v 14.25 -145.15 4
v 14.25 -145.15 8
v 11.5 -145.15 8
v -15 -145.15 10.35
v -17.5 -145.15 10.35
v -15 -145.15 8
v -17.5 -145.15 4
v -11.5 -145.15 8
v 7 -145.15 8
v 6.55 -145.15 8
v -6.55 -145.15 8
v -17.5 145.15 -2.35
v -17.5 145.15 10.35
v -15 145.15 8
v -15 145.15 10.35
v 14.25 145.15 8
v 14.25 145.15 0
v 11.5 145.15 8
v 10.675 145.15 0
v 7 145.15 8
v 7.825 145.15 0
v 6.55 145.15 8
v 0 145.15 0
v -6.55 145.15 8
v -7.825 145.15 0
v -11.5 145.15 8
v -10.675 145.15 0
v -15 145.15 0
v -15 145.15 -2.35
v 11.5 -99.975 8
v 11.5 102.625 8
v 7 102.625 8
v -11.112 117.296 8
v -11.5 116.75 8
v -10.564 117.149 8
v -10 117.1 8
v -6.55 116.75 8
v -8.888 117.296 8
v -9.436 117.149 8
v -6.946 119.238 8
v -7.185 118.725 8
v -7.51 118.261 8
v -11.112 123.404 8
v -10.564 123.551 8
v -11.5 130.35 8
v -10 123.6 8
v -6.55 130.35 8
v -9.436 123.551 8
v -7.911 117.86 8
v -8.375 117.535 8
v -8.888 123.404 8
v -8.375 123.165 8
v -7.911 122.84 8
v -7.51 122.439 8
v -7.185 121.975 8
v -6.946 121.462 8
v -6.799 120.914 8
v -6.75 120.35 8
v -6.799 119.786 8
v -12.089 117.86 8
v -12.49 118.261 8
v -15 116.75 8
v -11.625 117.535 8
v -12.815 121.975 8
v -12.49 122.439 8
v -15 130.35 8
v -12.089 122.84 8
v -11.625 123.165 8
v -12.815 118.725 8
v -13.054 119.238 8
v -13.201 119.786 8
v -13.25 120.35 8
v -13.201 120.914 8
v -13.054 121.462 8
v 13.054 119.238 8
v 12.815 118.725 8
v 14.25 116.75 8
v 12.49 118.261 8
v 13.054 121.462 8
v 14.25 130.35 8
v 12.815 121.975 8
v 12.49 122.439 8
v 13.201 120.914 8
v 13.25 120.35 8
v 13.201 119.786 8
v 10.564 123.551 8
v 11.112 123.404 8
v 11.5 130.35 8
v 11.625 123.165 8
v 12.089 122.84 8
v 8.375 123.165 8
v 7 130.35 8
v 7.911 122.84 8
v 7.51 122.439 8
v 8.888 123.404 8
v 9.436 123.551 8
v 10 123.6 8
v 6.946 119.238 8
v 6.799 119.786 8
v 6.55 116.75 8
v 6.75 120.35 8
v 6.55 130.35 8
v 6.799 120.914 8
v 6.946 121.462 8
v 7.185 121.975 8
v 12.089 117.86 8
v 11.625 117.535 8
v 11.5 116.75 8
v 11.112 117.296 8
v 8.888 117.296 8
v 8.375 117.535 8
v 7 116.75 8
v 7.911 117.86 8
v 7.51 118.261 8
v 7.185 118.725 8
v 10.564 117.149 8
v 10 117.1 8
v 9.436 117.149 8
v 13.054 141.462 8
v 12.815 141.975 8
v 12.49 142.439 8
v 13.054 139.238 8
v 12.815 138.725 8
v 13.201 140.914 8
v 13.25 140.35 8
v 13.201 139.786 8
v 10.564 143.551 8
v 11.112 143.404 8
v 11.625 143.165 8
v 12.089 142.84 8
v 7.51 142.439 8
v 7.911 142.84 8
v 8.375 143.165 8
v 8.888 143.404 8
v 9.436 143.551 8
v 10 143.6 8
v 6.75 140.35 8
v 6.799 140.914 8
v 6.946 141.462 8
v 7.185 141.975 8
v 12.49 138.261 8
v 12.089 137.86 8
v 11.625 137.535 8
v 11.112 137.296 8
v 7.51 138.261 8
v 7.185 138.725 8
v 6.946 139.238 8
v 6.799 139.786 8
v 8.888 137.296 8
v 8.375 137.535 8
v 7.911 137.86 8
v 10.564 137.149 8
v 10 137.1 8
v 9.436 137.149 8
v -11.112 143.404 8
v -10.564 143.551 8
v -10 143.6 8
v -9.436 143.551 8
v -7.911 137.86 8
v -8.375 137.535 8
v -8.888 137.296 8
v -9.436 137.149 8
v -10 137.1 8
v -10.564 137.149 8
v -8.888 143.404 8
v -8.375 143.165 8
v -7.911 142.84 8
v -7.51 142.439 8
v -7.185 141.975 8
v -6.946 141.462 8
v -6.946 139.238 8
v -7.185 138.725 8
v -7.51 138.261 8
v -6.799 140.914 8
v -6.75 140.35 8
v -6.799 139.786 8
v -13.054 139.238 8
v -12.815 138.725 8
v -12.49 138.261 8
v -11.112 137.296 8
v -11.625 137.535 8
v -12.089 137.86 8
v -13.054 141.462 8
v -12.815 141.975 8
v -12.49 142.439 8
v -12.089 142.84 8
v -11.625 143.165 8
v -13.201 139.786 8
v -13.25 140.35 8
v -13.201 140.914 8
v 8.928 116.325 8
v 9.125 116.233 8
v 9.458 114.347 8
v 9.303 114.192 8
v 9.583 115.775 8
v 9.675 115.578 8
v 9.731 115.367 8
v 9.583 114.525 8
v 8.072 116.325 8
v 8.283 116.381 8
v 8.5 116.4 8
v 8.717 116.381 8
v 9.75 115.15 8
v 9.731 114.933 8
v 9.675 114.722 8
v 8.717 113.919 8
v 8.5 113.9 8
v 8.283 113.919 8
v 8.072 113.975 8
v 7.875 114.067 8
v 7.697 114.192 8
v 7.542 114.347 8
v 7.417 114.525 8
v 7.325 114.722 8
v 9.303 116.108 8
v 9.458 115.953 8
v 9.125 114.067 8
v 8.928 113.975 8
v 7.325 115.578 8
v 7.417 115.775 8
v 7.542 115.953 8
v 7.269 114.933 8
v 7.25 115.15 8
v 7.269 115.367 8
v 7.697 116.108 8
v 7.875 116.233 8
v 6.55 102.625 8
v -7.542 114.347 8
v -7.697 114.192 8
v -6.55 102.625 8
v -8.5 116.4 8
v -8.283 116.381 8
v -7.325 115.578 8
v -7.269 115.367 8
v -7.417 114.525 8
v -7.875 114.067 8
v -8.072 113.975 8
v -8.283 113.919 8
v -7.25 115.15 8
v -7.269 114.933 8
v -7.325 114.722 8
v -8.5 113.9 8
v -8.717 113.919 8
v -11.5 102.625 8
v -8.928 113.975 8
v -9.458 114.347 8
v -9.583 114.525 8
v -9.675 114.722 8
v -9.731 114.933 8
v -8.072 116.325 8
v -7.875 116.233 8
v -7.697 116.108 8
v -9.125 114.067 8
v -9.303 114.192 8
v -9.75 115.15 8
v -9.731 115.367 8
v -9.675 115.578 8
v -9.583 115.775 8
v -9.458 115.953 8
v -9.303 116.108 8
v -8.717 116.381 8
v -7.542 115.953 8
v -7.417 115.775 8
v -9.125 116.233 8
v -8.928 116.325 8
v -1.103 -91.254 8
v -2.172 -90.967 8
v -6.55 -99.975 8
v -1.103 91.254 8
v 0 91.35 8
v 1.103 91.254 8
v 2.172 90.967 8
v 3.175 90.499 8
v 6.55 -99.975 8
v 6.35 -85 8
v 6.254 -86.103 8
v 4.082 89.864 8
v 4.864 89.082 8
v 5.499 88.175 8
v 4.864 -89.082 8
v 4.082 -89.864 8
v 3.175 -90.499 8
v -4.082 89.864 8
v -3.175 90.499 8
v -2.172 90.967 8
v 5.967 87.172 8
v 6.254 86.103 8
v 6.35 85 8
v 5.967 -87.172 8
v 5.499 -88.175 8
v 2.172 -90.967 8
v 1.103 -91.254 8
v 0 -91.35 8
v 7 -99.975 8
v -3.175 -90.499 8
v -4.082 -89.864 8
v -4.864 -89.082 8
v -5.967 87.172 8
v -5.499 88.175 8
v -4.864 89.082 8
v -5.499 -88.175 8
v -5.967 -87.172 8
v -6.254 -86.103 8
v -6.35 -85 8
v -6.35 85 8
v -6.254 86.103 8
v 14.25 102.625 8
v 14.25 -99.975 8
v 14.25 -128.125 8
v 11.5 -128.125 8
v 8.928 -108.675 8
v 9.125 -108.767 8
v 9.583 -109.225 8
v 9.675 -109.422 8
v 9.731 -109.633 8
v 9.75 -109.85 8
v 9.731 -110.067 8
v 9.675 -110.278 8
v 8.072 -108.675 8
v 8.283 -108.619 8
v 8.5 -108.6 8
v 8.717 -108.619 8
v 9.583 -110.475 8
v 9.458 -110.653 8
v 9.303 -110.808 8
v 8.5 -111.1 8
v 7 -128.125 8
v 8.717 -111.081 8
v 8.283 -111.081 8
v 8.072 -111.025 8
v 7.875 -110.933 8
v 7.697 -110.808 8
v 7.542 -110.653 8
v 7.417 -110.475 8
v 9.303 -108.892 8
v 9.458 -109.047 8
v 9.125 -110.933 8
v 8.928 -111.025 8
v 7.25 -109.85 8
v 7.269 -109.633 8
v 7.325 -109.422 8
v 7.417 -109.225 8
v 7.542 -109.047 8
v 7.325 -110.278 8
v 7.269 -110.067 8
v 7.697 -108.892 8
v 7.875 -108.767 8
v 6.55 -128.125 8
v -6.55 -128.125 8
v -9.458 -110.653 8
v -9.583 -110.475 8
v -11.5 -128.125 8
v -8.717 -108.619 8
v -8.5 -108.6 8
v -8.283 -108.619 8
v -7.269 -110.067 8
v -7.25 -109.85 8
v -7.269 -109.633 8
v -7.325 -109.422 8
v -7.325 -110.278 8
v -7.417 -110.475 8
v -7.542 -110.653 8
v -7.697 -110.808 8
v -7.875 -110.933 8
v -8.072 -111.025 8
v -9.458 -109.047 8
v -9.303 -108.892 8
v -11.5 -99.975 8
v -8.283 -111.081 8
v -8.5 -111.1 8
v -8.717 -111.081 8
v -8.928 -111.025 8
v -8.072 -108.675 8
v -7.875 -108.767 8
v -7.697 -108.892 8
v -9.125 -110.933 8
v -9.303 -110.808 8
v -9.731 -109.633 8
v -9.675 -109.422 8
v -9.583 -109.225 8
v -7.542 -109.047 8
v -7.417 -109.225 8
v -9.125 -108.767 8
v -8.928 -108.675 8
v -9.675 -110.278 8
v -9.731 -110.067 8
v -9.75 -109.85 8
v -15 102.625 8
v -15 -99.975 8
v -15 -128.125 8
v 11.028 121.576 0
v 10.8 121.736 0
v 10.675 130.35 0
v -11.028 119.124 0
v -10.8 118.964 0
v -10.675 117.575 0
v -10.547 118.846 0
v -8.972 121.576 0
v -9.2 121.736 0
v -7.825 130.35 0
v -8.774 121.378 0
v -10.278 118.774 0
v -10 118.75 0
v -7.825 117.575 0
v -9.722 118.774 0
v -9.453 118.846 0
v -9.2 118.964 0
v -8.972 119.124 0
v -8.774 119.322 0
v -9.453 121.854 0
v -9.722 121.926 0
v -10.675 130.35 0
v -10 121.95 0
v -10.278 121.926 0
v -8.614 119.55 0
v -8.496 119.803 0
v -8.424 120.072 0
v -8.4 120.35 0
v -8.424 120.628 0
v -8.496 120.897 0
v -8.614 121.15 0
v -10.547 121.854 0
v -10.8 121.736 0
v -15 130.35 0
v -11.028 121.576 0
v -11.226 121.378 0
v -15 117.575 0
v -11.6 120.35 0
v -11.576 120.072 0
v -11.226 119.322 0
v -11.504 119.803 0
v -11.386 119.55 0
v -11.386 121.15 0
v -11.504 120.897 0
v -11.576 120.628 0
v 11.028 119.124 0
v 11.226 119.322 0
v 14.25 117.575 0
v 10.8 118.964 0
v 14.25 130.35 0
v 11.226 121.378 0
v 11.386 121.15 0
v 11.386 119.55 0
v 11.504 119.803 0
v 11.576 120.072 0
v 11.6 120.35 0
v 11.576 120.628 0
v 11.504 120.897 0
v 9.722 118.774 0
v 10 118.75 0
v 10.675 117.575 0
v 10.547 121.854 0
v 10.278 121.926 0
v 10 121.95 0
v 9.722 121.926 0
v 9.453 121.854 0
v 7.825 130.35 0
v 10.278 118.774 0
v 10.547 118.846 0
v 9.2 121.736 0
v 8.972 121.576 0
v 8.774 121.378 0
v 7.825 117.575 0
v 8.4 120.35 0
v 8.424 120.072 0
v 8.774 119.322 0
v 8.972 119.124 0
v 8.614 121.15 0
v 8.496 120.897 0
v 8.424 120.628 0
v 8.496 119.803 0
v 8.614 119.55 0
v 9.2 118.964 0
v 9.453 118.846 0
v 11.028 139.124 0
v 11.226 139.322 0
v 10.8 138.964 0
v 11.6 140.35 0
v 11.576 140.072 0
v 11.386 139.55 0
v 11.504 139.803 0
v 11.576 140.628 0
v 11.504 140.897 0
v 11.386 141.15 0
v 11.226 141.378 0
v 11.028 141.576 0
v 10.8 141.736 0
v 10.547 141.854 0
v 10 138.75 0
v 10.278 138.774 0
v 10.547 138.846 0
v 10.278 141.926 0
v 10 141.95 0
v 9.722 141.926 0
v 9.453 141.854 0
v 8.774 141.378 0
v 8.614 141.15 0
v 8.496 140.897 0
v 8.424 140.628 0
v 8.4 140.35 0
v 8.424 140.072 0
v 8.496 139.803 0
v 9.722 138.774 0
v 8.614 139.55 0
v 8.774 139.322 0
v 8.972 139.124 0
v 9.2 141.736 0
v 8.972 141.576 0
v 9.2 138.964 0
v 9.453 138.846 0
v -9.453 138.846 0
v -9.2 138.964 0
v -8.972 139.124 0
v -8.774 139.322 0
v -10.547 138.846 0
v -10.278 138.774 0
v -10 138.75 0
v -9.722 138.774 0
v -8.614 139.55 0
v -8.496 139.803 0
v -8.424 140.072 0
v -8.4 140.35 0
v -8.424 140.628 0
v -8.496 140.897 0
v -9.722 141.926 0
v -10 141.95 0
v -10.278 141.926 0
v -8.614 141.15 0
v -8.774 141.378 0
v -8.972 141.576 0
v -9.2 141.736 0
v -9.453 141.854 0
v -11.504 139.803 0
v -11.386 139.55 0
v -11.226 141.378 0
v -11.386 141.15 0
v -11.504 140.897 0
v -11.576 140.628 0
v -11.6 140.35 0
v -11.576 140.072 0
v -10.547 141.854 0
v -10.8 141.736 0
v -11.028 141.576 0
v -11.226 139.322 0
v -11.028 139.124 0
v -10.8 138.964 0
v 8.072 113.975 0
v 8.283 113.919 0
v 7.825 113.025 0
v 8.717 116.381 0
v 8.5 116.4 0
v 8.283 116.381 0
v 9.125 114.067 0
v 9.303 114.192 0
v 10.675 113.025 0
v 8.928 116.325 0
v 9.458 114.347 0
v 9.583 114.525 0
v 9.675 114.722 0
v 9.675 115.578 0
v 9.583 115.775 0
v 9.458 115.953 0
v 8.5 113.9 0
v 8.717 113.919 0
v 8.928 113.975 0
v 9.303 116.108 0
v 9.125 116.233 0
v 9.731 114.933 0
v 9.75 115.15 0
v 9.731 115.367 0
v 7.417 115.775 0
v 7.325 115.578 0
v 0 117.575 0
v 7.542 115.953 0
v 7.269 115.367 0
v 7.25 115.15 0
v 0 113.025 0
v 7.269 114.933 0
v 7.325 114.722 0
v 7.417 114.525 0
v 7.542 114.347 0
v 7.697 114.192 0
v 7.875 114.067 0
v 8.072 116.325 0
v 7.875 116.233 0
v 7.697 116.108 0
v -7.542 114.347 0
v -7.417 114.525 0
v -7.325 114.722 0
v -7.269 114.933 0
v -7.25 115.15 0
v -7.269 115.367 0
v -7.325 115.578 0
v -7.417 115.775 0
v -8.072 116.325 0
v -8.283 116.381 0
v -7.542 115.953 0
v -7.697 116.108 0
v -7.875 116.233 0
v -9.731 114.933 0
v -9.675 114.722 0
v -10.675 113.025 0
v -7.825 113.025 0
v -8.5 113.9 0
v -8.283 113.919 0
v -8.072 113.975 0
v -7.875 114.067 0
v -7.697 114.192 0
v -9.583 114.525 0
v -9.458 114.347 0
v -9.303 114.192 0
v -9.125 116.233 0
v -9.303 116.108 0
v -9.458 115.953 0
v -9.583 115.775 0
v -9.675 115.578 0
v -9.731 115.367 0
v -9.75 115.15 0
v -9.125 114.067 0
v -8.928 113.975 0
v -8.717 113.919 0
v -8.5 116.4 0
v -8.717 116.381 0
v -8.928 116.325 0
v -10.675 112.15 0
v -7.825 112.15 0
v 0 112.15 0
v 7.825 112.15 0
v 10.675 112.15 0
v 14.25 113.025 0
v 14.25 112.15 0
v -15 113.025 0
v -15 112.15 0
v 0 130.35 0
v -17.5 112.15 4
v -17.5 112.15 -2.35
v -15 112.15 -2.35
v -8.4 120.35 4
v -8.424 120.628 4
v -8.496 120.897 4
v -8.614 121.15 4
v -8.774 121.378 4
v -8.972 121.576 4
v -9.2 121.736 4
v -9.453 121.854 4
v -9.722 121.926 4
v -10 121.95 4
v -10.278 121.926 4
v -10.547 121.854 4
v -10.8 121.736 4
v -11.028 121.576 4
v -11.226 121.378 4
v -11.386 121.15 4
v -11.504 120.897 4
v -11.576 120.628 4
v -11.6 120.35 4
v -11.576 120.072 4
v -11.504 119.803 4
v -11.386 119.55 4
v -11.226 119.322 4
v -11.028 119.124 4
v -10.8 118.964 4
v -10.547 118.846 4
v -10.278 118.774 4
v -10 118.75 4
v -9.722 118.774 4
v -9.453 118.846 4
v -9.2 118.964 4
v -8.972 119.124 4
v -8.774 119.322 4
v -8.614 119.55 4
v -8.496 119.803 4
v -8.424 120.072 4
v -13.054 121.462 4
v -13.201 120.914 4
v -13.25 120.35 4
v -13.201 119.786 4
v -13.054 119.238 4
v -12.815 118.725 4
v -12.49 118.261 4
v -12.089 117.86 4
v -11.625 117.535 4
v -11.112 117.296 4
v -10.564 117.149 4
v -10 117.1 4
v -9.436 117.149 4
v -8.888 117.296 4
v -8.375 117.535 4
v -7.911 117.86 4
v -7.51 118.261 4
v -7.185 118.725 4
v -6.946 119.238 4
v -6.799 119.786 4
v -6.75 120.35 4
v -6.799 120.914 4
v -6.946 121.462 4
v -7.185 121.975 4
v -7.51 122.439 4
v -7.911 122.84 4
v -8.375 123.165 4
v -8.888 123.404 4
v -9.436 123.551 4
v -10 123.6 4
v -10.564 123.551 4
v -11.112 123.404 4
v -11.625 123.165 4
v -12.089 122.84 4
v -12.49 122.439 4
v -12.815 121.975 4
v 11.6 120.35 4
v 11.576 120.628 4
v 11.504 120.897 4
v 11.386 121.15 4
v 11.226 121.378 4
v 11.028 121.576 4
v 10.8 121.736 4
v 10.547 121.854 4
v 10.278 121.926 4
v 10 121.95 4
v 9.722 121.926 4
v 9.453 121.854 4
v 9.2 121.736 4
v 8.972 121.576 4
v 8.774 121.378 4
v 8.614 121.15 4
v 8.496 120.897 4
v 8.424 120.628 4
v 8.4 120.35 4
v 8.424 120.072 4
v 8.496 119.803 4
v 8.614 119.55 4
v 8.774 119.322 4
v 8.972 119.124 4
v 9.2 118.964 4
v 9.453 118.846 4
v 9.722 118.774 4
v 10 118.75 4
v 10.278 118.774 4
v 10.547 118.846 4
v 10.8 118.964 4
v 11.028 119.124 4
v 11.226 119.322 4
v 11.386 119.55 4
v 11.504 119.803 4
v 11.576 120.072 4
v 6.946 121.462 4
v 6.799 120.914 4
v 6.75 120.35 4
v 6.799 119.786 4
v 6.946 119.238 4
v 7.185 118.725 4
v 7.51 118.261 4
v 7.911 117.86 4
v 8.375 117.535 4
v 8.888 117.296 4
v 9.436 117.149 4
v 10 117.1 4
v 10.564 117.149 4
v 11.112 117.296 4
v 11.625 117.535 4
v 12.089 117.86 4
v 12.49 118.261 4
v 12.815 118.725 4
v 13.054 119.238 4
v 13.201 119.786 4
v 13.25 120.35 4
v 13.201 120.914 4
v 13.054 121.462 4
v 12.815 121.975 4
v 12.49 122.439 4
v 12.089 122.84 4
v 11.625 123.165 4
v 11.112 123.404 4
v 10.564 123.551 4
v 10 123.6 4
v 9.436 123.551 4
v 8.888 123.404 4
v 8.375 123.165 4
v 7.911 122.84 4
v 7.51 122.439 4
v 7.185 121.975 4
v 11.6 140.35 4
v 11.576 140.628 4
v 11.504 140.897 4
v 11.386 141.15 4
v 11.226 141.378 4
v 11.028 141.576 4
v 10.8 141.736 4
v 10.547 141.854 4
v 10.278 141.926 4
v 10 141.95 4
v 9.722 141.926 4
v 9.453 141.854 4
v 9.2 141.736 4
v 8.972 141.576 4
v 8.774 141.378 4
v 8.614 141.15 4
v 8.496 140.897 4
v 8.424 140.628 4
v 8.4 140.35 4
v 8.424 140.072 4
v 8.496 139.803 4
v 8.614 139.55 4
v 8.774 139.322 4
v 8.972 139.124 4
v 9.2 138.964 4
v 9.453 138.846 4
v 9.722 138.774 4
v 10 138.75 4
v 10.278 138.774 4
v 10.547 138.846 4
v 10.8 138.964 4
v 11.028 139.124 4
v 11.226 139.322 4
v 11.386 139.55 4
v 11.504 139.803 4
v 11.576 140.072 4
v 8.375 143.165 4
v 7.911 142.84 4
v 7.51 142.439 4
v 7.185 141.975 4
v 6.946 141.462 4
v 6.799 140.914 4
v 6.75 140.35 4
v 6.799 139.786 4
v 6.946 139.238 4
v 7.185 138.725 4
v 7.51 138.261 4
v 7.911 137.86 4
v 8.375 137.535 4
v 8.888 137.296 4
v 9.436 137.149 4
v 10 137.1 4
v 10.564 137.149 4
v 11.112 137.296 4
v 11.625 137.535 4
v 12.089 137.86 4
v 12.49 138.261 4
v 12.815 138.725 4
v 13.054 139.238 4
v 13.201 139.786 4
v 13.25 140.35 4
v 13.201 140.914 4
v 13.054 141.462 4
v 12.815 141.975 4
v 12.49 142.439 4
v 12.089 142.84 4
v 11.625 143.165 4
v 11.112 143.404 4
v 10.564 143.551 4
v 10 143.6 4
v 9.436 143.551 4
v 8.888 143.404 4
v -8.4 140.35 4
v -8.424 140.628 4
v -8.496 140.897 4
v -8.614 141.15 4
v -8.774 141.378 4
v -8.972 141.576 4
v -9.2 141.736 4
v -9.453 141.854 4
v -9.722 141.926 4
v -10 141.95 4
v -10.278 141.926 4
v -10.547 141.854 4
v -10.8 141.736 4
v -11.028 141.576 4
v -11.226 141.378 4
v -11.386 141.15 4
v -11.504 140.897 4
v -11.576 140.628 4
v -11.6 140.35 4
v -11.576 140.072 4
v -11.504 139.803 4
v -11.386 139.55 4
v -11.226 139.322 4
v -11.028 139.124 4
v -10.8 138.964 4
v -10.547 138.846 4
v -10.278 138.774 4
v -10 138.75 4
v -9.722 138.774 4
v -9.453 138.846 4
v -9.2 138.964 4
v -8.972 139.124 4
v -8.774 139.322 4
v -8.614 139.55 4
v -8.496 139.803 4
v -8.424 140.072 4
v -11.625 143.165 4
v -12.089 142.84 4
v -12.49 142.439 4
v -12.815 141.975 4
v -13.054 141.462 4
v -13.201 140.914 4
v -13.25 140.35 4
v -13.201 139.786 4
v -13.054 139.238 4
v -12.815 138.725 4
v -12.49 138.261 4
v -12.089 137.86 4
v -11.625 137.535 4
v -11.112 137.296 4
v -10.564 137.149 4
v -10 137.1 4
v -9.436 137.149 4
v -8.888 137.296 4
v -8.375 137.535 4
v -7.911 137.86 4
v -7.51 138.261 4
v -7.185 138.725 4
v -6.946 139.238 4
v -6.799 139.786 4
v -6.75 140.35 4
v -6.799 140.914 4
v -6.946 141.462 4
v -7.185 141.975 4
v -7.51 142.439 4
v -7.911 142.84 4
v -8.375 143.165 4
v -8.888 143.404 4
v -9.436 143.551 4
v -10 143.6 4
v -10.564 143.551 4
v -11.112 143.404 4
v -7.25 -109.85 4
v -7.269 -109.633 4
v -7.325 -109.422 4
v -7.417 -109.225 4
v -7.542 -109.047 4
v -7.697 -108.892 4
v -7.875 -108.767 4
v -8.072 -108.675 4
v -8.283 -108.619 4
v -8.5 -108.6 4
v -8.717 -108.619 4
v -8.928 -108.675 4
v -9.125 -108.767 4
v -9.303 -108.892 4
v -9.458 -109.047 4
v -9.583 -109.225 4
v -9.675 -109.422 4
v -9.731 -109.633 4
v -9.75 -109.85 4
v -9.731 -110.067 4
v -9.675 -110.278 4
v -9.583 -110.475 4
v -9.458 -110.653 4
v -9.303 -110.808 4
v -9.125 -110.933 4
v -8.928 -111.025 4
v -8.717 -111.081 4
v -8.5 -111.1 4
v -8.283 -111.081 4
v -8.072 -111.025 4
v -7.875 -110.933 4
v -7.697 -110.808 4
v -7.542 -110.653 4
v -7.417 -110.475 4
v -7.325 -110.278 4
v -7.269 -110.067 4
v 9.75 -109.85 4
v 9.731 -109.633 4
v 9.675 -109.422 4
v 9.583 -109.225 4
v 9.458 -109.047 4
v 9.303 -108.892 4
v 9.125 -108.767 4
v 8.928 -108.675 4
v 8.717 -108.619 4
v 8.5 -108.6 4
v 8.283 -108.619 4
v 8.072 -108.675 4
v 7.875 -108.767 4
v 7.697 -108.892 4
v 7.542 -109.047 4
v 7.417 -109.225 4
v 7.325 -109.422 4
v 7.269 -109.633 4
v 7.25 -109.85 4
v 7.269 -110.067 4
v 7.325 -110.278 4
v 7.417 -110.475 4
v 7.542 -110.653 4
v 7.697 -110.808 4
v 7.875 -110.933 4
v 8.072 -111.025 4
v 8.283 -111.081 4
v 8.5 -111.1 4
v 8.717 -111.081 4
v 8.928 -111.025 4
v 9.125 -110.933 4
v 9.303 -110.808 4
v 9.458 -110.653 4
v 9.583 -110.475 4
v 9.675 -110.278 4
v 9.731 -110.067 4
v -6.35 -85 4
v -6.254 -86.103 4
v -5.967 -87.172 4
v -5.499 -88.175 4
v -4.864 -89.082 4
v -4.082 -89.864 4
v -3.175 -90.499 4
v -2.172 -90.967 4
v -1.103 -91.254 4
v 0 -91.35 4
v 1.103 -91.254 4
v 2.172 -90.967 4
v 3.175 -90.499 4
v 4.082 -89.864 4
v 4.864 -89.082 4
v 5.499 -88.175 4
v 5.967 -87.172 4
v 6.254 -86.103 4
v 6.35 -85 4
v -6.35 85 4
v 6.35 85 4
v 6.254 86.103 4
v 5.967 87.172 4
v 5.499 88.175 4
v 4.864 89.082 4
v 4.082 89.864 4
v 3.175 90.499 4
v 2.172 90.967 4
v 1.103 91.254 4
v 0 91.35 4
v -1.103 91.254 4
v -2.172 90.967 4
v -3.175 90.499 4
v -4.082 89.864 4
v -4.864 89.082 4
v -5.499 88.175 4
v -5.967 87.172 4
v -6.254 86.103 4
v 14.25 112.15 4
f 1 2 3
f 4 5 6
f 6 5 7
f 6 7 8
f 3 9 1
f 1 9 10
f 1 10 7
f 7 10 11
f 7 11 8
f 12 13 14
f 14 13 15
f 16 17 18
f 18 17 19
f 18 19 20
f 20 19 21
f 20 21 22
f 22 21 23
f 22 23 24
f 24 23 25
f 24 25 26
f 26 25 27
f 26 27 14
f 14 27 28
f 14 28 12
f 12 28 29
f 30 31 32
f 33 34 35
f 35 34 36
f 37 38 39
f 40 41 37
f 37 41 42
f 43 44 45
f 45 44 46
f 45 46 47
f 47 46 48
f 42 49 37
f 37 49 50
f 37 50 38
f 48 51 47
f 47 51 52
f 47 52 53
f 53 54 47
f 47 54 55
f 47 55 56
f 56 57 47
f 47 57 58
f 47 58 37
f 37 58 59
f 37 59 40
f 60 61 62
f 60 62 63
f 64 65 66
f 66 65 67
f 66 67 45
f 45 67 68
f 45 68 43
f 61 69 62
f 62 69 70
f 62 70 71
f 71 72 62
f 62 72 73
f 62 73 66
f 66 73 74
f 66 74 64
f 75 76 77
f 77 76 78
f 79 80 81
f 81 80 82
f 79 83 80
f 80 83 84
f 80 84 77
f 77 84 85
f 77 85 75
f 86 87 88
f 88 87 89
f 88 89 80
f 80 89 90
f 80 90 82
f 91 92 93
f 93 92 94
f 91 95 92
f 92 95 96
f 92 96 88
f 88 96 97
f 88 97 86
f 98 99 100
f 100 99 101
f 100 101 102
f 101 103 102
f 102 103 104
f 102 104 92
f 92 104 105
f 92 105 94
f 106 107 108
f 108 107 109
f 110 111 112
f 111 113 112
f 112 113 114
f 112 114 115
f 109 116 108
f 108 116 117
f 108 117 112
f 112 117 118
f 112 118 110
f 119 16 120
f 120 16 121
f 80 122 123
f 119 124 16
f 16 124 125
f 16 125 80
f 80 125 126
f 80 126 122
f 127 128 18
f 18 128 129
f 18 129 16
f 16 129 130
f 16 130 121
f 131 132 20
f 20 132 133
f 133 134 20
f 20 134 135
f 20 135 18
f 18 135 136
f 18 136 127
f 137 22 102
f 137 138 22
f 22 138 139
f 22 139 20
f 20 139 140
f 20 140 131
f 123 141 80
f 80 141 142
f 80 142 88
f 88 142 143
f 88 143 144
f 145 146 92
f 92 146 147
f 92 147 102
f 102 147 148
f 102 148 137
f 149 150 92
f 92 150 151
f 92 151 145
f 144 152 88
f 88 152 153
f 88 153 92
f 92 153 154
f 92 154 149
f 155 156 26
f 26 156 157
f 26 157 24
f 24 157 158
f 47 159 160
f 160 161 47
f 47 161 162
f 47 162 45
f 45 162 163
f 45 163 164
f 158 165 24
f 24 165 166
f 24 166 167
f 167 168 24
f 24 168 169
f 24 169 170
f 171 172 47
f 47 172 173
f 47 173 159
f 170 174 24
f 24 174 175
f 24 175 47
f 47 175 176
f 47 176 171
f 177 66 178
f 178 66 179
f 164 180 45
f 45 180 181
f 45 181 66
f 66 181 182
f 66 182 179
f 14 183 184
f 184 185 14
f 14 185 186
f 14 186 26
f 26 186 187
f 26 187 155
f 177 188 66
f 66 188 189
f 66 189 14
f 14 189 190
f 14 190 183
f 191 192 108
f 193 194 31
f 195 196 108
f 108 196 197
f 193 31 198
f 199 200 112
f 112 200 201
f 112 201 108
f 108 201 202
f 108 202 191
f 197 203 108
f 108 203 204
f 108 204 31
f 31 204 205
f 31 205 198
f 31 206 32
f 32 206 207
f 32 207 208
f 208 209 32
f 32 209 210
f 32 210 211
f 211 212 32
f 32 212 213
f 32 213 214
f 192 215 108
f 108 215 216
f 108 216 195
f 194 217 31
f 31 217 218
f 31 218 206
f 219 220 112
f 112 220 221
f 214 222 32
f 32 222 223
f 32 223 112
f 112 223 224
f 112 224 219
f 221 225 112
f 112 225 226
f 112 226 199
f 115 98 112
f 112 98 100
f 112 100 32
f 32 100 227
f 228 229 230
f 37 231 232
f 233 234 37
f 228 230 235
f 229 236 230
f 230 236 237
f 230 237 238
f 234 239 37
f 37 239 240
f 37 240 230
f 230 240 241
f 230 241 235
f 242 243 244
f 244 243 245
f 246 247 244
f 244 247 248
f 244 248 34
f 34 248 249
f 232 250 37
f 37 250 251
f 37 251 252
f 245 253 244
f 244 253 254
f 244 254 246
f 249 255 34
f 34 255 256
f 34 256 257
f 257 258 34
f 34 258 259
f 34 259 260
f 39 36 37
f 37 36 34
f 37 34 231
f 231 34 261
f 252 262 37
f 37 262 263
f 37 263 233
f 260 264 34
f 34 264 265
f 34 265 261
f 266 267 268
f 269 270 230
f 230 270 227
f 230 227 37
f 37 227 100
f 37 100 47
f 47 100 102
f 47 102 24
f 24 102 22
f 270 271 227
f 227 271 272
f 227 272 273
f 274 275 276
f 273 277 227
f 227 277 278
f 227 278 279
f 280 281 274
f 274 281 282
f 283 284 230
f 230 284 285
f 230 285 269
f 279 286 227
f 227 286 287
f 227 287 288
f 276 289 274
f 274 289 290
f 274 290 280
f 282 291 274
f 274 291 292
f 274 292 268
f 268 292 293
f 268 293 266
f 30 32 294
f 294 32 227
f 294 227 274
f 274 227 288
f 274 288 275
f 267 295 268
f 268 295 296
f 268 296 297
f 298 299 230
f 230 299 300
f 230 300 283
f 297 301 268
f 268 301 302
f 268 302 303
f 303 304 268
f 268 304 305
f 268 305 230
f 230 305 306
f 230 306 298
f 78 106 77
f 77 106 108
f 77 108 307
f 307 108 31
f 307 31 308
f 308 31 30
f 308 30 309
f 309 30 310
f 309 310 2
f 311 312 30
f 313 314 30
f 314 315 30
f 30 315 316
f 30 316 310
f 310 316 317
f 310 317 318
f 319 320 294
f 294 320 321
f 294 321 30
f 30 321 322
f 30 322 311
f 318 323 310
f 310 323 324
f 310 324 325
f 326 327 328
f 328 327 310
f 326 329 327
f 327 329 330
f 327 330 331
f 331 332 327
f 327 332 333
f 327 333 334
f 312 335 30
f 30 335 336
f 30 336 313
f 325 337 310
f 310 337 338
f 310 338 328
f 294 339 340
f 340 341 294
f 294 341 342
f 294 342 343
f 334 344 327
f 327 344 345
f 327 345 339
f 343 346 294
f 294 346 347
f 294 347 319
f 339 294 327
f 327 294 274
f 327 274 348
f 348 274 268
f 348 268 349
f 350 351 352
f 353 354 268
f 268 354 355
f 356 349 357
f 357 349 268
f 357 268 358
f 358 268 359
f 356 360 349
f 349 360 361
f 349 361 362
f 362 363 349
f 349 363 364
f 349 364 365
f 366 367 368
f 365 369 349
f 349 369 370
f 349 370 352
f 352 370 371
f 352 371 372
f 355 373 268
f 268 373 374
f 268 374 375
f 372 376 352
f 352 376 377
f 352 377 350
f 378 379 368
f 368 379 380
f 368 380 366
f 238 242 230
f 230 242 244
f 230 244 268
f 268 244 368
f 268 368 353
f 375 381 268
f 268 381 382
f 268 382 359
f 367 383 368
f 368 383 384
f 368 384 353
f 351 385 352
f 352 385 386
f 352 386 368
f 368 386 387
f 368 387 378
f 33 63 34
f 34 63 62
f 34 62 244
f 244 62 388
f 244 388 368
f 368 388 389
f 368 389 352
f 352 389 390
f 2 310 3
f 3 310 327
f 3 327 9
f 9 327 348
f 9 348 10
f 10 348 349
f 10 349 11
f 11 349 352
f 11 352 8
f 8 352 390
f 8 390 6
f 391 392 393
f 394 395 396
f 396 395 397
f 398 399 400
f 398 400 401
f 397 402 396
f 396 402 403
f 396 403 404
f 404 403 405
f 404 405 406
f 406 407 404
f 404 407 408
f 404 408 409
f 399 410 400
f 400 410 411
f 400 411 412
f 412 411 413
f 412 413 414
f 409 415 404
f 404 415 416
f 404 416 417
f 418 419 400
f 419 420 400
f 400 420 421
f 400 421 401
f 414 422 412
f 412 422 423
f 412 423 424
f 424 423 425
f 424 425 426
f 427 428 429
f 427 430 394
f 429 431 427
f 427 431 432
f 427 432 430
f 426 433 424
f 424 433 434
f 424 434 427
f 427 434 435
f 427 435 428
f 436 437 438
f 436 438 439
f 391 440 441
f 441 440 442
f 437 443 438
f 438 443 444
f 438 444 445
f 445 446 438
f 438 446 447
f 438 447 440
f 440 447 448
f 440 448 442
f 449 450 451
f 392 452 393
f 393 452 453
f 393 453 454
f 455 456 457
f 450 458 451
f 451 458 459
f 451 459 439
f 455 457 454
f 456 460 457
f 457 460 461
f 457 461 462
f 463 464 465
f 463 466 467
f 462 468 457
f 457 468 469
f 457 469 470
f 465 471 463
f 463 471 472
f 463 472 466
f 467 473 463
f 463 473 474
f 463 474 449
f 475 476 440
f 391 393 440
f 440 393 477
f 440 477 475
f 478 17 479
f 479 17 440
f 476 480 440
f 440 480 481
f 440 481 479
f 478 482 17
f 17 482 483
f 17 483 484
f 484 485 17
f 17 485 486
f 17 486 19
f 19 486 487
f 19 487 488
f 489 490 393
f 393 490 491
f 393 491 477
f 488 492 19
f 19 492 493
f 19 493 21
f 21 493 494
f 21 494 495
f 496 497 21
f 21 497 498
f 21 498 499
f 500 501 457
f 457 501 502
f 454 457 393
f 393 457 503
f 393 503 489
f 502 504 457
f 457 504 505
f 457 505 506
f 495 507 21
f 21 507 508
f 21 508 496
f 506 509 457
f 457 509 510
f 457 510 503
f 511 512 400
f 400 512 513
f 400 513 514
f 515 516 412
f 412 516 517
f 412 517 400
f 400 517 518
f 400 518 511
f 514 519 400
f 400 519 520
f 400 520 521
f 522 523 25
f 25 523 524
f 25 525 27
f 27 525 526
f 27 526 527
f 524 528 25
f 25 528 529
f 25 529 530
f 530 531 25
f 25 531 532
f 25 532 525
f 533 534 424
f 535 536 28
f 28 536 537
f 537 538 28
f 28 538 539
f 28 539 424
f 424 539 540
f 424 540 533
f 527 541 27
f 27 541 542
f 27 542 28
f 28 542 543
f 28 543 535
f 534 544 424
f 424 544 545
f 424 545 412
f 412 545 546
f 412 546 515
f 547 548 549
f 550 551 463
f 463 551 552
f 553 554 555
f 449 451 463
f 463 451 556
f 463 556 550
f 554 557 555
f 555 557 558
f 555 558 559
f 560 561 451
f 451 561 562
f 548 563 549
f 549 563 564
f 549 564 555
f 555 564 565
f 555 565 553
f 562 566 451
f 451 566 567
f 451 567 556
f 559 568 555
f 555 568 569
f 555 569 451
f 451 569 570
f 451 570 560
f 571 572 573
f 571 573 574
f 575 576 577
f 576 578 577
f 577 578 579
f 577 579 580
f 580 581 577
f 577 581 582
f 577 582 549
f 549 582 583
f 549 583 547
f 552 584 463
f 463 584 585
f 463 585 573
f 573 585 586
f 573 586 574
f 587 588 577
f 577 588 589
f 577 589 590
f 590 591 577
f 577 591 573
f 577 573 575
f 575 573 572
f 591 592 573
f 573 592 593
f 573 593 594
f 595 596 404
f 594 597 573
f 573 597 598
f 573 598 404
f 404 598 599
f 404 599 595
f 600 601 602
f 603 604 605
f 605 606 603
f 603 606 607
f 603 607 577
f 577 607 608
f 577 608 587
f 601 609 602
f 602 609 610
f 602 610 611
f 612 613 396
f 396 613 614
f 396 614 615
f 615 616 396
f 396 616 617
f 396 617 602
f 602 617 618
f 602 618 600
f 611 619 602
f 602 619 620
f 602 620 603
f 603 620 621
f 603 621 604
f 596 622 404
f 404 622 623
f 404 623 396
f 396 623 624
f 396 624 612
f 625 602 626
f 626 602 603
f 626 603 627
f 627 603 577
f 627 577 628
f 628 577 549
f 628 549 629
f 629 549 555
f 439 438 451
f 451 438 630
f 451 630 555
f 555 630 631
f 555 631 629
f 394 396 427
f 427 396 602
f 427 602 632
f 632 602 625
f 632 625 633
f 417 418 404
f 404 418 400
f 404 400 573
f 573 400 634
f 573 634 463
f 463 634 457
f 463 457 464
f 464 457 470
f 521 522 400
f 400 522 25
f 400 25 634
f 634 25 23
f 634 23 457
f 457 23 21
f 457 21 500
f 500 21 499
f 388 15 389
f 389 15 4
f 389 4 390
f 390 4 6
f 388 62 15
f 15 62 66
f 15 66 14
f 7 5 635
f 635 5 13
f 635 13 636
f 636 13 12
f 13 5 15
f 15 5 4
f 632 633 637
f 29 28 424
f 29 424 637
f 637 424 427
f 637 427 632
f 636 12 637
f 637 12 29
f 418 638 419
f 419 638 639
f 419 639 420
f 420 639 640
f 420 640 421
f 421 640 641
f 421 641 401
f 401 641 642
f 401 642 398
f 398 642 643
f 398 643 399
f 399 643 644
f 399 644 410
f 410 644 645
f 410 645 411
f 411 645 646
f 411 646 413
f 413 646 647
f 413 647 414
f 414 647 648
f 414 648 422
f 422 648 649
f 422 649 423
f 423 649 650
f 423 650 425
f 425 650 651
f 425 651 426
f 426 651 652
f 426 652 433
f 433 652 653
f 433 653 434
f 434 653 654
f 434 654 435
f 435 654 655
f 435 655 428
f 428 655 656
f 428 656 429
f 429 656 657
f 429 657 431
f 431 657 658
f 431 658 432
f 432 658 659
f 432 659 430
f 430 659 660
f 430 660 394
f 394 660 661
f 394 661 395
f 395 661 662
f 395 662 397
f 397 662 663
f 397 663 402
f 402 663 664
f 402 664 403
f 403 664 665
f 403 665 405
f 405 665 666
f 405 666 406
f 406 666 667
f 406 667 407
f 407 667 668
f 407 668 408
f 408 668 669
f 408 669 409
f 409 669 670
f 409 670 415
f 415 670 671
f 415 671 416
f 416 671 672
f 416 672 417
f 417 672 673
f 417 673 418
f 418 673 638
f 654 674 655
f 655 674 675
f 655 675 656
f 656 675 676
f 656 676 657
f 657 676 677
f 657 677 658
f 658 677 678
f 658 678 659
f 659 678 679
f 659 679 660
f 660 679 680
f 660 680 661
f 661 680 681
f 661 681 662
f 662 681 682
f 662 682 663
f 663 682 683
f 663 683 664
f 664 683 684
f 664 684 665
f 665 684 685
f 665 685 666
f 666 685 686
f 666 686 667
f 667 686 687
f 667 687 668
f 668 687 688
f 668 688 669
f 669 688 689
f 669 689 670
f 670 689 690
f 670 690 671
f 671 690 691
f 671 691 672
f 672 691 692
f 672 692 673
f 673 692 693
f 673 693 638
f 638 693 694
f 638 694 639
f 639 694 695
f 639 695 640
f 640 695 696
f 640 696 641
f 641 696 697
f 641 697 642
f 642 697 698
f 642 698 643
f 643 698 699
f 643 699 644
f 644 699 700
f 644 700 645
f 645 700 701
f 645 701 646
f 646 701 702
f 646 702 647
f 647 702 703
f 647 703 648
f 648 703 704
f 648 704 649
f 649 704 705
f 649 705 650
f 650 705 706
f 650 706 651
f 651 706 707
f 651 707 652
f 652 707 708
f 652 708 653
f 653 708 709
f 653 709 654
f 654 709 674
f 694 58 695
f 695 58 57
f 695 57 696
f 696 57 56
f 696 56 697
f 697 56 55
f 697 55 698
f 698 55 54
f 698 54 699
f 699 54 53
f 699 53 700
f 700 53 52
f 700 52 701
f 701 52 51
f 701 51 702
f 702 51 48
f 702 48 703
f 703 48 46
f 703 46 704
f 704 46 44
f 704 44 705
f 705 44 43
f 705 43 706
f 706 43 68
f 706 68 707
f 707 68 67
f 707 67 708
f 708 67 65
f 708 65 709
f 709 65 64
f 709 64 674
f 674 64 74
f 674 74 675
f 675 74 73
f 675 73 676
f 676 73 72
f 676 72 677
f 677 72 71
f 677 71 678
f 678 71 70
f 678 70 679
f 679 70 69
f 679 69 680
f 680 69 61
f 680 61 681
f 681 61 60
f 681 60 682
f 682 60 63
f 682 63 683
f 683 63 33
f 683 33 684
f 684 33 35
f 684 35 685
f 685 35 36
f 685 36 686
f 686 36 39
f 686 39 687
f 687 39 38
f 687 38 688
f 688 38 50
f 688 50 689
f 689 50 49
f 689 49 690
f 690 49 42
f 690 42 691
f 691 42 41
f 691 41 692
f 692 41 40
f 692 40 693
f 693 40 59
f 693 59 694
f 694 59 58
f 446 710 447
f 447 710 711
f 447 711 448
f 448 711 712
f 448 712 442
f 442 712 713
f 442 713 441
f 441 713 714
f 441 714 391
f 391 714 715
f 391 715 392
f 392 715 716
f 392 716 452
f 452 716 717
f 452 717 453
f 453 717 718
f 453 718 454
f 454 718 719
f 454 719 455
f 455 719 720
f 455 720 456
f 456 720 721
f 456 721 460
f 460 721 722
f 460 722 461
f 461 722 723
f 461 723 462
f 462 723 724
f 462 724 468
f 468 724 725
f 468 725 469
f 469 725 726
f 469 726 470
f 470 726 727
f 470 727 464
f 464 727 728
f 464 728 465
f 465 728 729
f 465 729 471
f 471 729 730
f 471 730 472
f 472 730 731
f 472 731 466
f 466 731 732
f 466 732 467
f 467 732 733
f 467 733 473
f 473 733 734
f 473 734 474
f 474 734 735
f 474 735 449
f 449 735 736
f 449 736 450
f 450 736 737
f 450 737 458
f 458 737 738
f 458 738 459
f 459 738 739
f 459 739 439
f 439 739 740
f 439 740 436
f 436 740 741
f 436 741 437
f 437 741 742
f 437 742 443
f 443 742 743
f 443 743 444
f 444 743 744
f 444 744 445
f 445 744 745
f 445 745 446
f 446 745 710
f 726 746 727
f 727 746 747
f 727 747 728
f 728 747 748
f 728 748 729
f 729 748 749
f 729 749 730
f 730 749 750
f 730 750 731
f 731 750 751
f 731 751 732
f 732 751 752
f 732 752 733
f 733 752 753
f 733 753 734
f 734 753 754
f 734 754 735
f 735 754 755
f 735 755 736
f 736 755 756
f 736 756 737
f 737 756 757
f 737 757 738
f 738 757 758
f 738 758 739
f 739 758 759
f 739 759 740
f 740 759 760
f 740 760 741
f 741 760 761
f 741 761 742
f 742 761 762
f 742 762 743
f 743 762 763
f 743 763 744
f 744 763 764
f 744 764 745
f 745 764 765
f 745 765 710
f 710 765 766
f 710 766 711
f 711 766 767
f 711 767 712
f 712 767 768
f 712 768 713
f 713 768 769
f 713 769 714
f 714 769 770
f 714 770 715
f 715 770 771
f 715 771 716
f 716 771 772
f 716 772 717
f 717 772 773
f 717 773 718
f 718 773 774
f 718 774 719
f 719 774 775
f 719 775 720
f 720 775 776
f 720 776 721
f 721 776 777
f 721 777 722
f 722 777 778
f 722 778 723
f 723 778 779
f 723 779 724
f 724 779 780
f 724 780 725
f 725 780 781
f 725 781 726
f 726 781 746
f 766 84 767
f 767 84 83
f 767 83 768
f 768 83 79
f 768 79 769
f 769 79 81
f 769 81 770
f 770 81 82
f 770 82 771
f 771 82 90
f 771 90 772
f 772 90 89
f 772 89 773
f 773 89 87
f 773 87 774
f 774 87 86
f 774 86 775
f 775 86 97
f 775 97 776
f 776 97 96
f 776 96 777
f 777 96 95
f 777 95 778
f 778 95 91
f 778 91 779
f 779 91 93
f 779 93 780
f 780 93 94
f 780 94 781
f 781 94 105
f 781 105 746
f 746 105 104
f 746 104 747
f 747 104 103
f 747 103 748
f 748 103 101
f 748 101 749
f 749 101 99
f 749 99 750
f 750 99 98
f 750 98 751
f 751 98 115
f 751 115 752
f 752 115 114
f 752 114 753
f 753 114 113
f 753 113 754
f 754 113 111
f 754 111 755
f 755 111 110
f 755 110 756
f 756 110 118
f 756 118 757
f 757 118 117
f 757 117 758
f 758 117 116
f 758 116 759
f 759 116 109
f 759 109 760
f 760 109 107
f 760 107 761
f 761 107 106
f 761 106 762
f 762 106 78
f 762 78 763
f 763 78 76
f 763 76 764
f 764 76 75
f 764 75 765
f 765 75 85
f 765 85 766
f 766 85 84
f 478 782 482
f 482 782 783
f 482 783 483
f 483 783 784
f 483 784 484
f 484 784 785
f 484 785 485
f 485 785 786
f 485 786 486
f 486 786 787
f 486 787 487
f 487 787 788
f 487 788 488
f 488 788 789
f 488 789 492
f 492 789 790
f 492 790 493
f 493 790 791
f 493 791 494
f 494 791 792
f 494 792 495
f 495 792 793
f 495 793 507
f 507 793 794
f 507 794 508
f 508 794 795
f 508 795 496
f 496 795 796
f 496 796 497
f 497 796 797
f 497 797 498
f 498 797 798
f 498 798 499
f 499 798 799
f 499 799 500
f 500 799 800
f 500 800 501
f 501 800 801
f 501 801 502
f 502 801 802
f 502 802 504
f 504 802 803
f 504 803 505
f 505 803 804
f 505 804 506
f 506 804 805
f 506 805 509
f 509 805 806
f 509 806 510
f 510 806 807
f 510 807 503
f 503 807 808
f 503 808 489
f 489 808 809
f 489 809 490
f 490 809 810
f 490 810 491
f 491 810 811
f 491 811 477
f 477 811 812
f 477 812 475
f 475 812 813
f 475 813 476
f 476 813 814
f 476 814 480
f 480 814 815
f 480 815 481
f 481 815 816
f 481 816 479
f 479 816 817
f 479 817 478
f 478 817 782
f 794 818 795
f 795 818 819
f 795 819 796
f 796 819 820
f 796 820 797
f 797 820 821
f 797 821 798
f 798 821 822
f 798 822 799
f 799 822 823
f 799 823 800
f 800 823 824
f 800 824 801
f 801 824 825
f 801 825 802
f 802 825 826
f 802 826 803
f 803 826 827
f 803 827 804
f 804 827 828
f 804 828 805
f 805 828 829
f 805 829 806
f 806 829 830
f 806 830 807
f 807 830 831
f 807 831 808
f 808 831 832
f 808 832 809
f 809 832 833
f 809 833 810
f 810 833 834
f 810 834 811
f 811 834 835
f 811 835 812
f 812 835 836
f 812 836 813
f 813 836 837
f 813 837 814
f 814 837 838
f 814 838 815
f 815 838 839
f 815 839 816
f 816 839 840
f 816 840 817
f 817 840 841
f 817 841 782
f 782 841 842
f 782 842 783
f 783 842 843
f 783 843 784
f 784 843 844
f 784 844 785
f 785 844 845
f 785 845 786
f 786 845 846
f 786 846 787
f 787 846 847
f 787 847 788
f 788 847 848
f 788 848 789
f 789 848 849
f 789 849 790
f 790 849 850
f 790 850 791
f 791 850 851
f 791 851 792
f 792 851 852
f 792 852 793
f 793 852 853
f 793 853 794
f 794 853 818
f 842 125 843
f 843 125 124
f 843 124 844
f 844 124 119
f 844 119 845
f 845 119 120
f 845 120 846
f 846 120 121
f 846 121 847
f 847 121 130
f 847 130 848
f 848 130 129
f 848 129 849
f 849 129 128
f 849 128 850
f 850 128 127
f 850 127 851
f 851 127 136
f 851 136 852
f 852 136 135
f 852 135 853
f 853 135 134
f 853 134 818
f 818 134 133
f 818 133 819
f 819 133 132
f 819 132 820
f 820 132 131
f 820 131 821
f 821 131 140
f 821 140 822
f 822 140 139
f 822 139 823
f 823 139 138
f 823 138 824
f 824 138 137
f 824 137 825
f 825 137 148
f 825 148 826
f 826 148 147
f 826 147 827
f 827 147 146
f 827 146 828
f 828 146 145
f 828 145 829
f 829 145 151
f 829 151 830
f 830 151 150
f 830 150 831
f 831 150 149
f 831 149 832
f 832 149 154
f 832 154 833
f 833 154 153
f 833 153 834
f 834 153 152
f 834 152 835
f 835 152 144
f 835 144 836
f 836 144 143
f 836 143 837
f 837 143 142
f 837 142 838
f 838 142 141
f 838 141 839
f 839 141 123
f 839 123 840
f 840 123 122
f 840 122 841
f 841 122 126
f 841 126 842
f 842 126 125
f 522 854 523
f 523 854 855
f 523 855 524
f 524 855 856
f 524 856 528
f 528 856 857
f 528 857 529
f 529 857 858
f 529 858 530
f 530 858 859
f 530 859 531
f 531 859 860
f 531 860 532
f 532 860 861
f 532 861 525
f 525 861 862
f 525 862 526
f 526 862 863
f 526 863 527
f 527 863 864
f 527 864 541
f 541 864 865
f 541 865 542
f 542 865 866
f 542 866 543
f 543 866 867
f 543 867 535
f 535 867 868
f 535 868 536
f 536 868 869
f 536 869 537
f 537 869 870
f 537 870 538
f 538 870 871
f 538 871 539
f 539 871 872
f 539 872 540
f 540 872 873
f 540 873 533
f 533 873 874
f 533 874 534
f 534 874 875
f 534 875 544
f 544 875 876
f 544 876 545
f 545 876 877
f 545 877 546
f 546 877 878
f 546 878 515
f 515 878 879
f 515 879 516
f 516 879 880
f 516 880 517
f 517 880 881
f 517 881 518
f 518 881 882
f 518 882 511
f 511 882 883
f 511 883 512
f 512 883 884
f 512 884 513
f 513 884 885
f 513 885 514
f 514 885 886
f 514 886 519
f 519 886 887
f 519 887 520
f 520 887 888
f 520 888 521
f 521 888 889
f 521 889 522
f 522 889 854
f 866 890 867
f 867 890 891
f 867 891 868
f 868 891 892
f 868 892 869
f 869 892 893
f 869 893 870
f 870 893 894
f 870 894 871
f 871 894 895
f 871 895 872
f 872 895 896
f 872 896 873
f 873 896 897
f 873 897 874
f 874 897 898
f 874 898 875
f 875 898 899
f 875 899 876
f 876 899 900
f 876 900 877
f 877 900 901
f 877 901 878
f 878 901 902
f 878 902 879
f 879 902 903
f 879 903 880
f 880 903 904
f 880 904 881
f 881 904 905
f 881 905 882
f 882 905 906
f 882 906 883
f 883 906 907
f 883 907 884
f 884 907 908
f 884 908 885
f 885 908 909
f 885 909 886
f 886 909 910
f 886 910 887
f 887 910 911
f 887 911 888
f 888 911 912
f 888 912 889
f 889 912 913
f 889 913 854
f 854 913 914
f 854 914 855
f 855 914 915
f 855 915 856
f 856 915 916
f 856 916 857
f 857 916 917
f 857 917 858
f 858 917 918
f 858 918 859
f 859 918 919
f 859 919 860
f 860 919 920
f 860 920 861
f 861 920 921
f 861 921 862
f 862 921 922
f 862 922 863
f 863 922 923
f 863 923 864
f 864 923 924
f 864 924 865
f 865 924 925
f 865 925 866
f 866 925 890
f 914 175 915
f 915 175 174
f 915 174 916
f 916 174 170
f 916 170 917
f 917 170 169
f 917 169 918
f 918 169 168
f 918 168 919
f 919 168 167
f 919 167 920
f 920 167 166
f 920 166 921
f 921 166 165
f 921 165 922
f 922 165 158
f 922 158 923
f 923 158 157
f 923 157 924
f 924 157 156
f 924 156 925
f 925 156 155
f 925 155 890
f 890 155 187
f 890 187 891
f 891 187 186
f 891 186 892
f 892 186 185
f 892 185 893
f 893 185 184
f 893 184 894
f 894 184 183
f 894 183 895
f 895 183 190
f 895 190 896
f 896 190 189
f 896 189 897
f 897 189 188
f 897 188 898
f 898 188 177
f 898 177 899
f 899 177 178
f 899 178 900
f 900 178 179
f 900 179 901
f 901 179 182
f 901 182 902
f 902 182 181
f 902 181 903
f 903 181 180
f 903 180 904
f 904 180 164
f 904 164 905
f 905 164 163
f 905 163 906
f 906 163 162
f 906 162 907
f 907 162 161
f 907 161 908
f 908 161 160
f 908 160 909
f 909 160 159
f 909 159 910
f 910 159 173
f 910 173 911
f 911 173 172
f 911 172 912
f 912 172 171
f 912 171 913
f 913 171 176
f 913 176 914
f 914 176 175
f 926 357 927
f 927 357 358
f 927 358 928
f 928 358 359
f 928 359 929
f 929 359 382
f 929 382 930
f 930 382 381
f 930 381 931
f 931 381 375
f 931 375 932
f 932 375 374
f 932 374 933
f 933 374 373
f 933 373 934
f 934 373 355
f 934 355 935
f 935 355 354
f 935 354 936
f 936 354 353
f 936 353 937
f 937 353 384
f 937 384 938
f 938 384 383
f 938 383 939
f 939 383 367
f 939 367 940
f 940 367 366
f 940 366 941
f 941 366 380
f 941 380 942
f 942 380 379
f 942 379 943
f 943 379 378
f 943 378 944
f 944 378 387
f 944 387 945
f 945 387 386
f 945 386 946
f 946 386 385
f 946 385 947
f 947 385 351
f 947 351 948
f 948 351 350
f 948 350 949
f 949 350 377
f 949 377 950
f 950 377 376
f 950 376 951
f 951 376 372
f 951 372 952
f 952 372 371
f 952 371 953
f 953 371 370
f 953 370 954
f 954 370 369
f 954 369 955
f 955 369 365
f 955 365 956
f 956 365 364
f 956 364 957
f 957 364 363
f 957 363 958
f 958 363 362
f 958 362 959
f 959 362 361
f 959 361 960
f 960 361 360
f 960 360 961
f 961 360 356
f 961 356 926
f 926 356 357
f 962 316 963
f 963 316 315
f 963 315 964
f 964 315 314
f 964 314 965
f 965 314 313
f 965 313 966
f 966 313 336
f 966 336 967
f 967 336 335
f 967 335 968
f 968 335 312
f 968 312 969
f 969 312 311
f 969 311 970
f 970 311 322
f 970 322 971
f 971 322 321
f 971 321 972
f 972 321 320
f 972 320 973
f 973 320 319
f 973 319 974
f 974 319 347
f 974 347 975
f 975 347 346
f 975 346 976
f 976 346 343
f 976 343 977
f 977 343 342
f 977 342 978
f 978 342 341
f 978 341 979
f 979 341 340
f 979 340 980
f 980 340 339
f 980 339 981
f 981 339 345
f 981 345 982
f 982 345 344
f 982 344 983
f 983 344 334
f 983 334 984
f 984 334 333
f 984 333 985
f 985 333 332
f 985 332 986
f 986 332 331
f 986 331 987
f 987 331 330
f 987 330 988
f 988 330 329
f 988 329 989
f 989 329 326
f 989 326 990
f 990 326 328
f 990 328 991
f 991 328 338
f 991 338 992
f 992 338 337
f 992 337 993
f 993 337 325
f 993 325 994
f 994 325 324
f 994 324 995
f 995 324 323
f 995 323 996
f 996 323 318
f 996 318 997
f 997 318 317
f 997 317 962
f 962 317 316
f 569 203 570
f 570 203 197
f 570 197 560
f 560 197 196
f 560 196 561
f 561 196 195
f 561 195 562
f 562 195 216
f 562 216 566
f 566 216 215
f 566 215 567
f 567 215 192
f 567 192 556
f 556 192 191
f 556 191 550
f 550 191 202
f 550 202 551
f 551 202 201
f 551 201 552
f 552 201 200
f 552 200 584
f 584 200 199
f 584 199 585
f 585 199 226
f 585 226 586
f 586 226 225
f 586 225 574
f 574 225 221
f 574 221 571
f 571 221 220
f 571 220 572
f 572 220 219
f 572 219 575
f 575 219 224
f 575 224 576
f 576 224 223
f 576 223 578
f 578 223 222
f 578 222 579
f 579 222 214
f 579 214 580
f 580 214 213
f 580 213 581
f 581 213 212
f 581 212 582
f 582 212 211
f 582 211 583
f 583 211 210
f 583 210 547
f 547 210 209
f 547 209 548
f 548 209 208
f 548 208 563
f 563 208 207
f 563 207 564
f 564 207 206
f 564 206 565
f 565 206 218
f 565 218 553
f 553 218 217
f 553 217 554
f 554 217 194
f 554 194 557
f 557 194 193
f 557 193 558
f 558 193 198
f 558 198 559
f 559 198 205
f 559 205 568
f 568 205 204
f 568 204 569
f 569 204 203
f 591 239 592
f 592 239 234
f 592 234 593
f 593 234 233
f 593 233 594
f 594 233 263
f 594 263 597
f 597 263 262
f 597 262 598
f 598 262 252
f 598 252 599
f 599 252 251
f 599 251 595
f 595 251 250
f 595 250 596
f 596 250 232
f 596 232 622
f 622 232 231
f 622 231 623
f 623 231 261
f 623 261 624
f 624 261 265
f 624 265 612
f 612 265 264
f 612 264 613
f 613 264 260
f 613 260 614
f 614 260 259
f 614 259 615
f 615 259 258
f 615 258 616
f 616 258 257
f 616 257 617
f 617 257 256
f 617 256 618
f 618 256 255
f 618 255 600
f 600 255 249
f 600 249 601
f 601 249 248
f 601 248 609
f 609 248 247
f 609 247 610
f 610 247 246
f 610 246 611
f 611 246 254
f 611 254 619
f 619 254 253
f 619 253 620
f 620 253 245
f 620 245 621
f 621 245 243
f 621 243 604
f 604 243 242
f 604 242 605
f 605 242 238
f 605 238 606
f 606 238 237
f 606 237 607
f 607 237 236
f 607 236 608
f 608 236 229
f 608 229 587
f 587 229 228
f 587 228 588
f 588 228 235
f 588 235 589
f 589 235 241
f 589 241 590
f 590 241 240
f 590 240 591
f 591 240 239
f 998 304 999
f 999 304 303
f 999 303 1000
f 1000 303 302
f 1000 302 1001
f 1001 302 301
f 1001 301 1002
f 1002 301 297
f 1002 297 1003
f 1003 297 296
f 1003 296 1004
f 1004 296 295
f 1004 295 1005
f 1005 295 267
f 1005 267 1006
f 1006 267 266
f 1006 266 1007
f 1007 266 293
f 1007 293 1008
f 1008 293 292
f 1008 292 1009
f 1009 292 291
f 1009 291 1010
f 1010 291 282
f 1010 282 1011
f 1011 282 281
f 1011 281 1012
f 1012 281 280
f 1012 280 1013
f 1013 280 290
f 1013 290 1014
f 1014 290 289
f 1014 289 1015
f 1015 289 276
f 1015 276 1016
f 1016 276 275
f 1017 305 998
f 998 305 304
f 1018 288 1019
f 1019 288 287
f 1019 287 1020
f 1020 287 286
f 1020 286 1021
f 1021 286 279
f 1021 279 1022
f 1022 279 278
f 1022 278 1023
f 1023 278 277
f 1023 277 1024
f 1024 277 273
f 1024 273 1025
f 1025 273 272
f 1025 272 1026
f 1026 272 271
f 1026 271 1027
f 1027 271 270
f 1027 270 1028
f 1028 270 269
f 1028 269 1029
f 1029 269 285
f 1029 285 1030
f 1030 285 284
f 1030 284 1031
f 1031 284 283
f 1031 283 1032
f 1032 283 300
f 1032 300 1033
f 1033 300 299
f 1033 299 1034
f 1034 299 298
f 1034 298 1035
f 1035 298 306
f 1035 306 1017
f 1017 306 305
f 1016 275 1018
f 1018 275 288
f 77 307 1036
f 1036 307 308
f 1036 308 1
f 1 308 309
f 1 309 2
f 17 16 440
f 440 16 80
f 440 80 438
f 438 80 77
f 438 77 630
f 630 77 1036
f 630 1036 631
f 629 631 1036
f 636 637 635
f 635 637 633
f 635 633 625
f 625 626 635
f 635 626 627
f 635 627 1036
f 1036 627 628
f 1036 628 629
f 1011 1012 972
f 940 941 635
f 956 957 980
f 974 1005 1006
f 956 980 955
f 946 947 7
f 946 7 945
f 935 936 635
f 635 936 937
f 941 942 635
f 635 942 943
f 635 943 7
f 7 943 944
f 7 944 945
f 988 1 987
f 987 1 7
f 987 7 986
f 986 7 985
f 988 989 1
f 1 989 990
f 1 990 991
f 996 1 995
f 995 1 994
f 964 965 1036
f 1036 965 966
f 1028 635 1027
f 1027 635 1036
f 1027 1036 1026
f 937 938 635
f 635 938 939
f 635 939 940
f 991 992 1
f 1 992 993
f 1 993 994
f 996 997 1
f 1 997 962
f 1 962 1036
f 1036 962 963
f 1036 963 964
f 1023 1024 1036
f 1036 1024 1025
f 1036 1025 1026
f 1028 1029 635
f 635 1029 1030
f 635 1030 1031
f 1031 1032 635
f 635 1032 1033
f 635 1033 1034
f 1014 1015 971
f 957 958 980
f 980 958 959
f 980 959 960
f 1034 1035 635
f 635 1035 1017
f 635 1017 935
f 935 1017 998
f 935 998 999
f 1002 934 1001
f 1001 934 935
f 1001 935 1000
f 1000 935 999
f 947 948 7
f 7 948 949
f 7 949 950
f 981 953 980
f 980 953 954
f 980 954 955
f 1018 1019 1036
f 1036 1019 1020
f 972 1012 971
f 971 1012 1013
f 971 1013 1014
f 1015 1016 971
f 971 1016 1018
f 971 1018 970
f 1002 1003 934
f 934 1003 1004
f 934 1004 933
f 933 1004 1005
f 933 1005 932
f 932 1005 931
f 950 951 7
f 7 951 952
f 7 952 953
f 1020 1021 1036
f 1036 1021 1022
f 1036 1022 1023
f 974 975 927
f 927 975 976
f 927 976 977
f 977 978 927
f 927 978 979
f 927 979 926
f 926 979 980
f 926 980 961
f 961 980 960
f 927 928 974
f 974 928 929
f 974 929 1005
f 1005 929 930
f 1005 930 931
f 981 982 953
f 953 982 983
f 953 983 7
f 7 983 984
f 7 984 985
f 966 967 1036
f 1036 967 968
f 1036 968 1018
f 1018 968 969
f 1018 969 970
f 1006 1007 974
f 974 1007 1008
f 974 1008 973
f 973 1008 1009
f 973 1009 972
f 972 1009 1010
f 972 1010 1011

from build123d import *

# Parameters (mm, degrees)
SKETCH1_W                      = 30
SKETCH1_H                      = 290.3
BOSS_EXTRUDE1_DEPTH            = 8
SKETCH1_3_W                    = 2.5
SKETCH1_3_H                    = 290.3
BOSS_EXTRUDE2_DEPTH            = 10.35
SKETCH1_6_W                    = 2.5
SKETCH1_6_H                    = 290.3
BOSS_EXTRUDE3_DEPTH            = 2.35
CBORE_FOR_M3_SHCS1_D           = 3.6
CBORE_FOR_M3_SHCS1_CBORE_D     = 6.5
CBORE_FOR_M3_SHCS1_CBORE_DEPTH = 4
M3X0_5_TAPPED_HOLE1_D          = 2.5
CUT_EXTRUDE1_DEPTH             = 10
SKETCH12_W                     = 0.75
SKETCH12_H                     = 290.3
CUT_EXTRUDE2_DEPTH             = 147.567032446
SKETCH15_W                     = 31.75
SKETCH15_H                     = 257.3
CUT_EXTRUDE3_DEPTH             = 4
CUT_EXTRUDE3_DIRECTION_2_REACH = 148.567


with BuildPart() as part:
    # Sketch1 → Boss-Extrude1 (new body)
    with BuildSketch(Plane.XY):
        Rectangle(SKETCH1_W, SKETCH1_H)
    extrude(amount=BOSS_EXTRUDE1_DEPTH)

    # Sketch1<3> → Boss-Extrude2 (add)
    with BuildSketch(Plane.XY):
        with Locations((-16.25, 0)):
            Rectangle(SKETCH1_3_W, SKETCH1_3_H)
    extrude(amount=BOSS_EXTRUDE2_DEPTH)

    # Sketch1<6> → Boss-Extrude3 (add)
    with BuildSketch(Plane.XY):
        with Locations((-16.25, 0)):
            Rectangle(SKETCH1_6_W, SKETCH1_6_H)
    extrude(amount=-BOSS_EXTRUDE3_DEPTH)

    # CBORE for M3 SHCS1 (through all)
    with Locations(Plane.XY.offset(8)):
        with Locations((-10, 140.35), (10, 140.35), (10, 120.35), (-10, 120.35)):
            CounterBoreHole(CBORE_FOR_M3_SHCS1_D / 2, CBORE_FOR_M3_SHCS1_CBORE_D / 2, CBORE_FOR_M3_SHCS1_CBORE_DEPTH)

    # M3x0.5 Tapped Hole1 (through all)
    with Locations(Plane.XY.offset(8)):
        with Locations((-8.5, 115.15), (8.5, 115.15), (8.5, -109.85), (-8.5, -109.85)):
            Hole(M3X0_5_TAPPED_HOLE1_D / 2)

    # Sketch11 → Cut-Extrude1 (cut)
    with BuildSketch(Plane.XY.offset(8)):
        with BuildLine():
            Line((-6.35, -85), (-6.35, 85))
            ThreePointArc((-6.35, 85), (0, 91.35), (6.35, 85))
            Line((6.35, 85), (6.35, -85))
            ThreePointArc((6.35, -85), (0, -91.35), (-6.35, -85))
        make_face()
    extrude(amount=-CUT_EXTRUDE1_DEPTH, mode=Mode.SUBTRACT)

    # Sketch12 → Cut-Extrude2 (cut, through all)
    with BuildSketch(Plane.XY.offset(8)):
        with Locations((14.625, 0)):
            Rectangle(SKETCH12_W, SKETCH12_H)
    extrude(amount=-CUT_EXTRUDE2_DEPTH, mode=Mode.SUBTRACT)

    # Sketch15 → Cut-Extrude3 (cut)
    with BuildSketch(Plane(origin=(0, 0, 0), x_dir=(-1, 0, 0), z_dir=(0, 0, -1))):
        with Locations((1.625, -16.5)):
            Rectangle(SKETCH15_W, SKETCH15_H)
    extrude(amount=-CUT_EXTRUDE3_DEPTH, mode=Mode.SUBTRACT)

    # Cut-Extrude3 direction 2: up to this face of the body (flat: up to its plane)
    cut_extrude3_direction_2_end = Plane(part.part.faces().sort_by_distance((-16.25, 0, -2.35))[0])
    # Sketch15 → Cut-Extrude3 direction 2 (cut, up to the picked face)
    with BuildSketch(Plane(origin=(0, 0, 0), x_dir=(-1, 0, 0), z_dir=(0, 0, -1)), mode=Mode.PRIVATE) as cut_extrude3_direction_2_sk1:
        with Locations((1.625, -16.5)):
            Rectangle(SKETCH15_W, SKETCH15_H)
    cut_extrude3_direction_2_tool1 = split(extrude(cut_extrude3_direction_2_sk1.sketch, amount=CUT_EXTRUDE3_DIRECTION_2_REACH, mode=Mode.PRIVATE), bisect_by=cut_extrude3_direction_2_end, keep=Keep.BOTH, mode=Mode.PRIVATE)
    add(cut_extrude3_direction_2_tool1.solids().sort_by(Axis((-1.625, -16.5, 0), (0, 0, -1)))[0], mode=Mode.SUBTRACT)


solid = part.part
